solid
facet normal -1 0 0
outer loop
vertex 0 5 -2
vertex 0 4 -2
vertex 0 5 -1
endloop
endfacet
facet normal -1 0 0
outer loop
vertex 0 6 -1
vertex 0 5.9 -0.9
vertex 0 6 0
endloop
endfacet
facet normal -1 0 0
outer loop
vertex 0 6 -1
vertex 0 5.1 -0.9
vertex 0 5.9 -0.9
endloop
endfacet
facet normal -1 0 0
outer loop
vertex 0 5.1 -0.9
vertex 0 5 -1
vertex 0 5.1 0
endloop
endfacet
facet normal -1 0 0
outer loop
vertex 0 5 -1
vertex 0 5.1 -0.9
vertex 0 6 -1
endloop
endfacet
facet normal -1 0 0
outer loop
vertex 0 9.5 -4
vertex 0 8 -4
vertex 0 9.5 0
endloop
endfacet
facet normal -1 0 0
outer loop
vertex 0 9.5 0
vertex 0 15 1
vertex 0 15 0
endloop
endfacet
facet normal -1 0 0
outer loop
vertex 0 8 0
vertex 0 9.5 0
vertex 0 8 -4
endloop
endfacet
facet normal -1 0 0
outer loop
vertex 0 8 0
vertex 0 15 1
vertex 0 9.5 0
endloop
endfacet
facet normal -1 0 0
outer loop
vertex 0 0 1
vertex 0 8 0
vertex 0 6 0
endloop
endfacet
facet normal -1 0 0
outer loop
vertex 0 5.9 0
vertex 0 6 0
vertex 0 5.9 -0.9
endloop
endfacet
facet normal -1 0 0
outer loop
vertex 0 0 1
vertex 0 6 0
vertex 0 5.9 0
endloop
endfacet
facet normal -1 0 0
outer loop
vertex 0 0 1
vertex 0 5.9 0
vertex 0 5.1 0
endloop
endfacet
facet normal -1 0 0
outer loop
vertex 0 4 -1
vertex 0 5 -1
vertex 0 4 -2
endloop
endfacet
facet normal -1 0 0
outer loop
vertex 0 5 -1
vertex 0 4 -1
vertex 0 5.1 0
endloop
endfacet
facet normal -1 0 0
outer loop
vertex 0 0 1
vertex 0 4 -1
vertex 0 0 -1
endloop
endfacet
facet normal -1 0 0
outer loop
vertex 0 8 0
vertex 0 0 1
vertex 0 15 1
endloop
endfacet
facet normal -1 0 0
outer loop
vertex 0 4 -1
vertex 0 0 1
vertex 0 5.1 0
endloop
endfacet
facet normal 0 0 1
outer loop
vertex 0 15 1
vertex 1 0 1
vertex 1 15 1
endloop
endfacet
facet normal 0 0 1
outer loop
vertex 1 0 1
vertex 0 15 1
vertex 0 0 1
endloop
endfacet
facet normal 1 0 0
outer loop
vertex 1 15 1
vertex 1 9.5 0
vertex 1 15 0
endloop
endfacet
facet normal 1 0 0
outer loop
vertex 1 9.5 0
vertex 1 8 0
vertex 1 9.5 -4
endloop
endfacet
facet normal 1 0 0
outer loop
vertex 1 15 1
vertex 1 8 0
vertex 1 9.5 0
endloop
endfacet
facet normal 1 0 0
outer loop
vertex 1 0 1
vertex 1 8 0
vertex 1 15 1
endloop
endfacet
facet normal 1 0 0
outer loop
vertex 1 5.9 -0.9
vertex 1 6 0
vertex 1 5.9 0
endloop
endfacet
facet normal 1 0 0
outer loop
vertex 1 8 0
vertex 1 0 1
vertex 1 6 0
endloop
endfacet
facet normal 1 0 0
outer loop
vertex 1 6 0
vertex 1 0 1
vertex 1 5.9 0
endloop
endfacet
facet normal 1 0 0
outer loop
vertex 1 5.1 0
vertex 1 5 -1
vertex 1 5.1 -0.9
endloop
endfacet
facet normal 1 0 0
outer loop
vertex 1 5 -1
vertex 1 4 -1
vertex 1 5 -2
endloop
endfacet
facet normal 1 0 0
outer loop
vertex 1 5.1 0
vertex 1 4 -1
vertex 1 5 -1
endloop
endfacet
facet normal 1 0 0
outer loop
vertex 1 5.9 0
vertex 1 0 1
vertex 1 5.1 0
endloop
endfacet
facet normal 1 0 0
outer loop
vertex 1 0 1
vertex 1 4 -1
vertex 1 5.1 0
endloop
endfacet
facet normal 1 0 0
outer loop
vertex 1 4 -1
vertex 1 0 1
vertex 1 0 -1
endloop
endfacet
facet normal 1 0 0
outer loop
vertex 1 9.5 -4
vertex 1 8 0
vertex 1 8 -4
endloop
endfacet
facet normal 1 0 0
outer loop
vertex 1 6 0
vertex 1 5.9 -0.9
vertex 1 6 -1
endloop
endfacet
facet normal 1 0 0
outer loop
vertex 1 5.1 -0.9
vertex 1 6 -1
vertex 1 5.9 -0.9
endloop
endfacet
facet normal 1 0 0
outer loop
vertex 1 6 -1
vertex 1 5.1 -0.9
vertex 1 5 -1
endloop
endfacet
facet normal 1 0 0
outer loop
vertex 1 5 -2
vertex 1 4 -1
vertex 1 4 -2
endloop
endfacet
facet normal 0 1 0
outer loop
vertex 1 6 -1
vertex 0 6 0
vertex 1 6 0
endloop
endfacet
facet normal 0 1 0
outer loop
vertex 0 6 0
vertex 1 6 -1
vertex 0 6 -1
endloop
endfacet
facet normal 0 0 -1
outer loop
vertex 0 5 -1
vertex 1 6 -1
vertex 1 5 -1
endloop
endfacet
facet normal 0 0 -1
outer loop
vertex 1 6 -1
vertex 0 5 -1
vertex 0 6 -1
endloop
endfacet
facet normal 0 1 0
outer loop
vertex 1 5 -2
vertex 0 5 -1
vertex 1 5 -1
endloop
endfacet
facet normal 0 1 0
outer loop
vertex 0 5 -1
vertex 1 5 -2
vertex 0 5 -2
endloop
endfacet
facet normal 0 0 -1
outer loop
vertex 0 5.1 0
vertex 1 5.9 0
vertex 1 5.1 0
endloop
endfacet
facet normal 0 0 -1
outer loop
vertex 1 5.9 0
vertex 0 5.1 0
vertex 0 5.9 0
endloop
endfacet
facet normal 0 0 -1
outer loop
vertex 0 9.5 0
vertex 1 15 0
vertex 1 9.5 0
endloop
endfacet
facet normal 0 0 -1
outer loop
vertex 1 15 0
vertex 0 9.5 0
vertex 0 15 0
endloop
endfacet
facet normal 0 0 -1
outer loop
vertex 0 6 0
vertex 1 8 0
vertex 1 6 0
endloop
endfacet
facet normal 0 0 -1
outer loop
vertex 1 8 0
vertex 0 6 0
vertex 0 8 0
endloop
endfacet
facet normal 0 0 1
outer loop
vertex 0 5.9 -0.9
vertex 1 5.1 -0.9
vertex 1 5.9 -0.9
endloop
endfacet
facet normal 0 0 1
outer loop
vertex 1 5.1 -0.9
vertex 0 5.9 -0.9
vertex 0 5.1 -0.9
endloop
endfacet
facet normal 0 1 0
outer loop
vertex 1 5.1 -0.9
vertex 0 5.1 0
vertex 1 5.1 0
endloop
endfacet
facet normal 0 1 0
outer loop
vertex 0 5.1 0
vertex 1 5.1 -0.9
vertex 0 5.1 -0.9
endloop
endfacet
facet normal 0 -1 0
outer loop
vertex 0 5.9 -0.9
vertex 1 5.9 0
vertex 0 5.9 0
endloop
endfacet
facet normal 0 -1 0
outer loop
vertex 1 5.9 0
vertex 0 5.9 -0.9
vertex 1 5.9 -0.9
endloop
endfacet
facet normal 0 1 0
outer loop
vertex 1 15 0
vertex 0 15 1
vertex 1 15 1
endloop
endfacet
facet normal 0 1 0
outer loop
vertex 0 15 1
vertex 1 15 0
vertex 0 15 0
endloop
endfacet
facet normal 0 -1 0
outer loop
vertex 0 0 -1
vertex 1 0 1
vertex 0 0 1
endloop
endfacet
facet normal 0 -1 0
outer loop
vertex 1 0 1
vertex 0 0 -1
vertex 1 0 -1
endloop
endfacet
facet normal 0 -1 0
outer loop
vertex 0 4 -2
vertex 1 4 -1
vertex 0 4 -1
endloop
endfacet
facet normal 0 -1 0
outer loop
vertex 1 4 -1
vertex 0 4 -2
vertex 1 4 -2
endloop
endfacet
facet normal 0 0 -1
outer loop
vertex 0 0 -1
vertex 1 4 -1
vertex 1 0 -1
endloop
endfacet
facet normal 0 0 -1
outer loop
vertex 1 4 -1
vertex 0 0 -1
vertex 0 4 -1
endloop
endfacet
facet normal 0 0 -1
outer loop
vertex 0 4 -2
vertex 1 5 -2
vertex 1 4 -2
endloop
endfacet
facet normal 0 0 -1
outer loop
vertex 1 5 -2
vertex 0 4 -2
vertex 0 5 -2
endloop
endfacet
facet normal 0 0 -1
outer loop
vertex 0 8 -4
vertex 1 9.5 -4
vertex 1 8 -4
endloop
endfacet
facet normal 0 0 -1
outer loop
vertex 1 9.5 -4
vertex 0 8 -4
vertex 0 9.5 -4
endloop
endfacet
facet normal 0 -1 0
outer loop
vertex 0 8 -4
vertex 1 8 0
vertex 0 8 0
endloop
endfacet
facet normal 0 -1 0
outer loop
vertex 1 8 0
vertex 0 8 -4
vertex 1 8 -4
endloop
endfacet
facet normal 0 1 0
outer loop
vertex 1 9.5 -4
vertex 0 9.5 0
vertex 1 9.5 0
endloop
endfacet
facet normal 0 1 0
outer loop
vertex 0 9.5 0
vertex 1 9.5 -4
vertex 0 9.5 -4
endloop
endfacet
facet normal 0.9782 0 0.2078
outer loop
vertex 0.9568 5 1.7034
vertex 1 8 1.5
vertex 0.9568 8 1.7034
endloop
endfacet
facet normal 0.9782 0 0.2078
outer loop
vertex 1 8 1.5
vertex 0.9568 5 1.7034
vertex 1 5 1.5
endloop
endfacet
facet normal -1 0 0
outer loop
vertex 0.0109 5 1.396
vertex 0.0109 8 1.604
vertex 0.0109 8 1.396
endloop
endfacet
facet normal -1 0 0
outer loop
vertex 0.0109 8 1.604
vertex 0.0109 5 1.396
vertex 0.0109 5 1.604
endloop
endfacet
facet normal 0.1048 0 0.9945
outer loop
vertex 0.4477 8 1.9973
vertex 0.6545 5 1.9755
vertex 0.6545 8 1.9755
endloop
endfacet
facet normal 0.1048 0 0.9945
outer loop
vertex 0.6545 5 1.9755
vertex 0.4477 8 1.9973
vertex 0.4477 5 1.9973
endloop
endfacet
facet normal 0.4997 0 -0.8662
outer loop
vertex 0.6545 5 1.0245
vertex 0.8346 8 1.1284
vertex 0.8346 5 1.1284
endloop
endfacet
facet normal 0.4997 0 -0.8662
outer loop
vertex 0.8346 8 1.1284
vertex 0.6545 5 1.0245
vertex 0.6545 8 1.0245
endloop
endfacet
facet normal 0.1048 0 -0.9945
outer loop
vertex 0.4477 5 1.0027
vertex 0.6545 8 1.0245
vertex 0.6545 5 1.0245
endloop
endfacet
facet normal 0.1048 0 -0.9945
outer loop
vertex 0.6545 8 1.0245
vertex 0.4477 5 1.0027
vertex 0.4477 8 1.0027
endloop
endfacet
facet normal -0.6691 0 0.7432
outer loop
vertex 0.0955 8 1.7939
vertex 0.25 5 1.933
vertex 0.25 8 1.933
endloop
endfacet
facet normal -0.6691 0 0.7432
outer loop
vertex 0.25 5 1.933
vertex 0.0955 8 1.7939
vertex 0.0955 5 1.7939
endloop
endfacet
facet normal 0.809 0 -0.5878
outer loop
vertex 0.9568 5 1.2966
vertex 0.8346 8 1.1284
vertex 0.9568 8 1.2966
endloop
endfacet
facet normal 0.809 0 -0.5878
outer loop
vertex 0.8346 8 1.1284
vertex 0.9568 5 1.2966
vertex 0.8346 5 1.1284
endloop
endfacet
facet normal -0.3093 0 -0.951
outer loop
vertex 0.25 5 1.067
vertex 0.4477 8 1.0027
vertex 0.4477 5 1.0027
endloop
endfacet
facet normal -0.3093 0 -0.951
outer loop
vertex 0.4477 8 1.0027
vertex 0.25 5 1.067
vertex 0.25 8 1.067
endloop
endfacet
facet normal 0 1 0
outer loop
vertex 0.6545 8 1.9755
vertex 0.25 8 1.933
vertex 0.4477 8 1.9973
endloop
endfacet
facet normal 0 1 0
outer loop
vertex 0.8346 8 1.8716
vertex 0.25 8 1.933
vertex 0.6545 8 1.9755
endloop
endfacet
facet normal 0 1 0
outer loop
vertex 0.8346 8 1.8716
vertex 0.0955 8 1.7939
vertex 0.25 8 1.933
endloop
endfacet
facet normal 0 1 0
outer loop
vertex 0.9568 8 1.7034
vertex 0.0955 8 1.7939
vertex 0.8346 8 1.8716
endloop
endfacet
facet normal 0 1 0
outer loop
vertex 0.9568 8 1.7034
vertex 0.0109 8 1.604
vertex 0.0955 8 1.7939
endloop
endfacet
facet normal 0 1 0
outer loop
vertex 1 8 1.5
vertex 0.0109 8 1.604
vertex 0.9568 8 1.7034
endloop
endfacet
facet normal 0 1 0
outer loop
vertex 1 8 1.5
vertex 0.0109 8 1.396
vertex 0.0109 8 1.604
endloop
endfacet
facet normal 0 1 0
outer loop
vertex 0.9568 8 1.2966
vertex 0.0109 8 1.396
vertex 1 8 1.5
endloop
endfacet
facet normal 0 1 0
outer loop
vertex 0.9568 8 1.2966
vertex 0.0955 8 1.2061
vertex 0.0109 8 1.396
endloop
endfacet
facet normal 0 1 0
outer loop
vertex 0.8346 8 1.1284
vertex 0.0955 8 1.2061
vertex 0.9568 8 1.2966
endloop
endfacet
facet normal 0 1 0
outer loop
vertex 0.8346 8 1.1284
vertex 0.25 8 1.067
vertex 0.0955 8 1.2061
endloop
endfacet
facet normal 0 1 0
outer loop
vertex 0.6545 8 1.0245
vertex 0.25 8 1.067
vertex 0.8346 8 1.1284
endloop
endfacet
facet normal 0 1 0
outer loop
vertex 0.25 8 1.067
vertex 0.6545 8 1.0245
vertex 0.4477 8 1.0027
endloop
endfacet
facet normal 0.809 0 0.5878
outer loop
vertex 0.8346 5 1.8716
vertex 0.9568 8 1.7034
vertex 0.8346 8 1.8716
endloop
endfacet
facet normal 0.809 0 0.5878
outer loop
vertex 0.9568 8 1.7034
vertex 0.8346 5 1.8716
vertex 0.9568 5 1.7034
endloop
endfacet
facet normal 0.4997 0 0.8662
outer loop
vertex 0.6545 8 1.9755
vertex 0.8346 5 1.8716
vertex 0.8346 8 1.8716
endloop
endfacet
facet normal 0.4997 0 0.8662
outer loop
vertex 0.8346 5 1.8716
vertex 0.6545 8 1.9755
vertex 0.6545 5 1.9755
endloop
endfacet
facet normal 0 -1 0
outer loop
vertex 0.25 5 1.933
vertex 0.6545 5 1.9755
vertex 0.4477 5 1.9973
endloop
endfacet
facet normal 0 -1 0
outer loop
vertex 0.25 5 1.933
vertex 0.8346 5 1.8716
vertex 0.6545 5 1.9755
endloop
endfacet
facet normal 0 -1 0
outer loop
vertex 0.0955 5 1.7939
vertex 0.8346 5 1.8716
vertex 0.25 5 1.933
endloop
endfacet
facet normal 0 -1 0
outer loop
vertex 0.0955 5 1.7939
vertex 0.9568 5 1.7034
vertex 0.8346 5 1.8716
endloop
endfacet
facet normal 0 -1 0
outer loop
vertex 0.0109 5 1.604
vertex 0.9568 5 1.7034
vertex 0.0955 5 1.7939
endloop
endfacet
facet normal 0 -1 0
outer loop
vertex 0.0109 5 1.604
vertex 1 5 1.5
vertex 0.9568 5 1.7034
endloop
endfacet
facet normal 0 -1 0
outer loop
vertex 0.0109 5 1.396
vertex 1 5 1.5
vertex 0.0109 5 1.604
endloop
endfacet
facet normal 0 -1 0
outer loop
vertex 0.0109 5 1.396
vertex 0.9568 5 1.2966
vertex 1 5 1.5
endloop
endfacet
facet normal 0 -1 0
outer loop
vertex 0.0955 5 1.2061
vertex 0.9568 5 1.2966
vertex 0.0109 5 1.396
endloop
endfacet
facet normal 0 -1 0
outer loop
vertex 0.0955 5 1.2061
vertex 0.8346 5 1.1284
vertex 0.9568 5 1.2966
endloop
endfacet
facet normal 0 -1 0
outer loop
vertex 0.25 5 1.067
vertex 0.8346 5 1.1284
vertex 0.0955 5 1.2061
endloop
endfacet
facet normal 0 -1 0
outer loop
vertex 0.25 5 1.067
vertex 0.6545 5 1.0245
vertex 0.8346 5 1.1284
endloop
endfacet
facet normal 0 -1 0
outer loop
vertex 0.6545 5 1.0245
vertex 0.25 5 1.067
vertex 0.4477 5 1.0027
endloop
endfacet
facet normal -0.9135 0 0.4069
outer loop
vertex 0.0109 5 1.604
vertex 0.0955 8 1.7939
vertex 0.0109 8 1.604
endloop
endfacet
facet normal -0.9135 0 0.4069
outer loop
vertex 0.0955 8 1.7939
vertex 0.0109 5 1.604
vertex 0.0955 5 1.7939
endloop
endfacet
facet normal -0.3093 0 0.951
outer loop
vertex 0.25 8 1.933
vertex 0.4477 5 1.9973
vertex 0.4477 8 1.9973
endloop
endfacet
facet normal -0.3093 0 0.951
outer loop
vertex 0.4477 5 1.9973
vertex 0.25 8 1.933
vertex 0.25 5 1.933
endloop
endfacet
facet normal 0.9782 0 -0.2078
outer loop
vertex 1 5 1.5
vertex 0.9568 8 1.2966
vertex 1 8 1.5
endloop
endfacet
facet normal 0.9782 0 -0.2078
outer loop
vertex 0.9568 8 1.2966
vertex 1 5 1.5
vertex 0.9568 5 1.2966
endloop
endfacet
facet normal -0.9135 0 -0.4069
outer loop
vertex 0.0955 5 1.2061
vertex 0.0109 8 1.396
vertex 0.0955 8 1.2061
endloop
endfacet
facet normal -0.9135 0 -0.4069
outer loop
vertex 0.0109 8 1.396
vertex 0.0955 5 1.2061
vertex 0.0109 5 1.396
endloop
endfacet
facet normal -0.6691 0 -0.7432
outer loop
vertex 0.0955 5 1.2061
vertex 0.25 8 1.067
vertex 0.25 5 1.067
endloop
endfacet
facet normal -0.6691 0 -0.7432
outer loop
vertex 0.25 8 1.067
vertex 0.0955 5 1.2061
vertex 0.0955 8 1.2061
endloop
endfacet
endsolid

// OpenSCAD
cube([1,15,1]);

translate([0,0,-1])
cube([1,4,2]);

translate([0,4,-2])
cube([1,1,3]);

difference(){
translate([0,5,-1])
cube([1,1,2]);
    
translate([-0.1,5.1,-0.9])
cube([2,0.8,0.9]);
}

translate([0,8,-4])
cube([1,1.5,5]);

translate([0.5,8,1.5])
rotate([90,0,0]){
    cylinder(d=1,h=3,$fn=15);
}
